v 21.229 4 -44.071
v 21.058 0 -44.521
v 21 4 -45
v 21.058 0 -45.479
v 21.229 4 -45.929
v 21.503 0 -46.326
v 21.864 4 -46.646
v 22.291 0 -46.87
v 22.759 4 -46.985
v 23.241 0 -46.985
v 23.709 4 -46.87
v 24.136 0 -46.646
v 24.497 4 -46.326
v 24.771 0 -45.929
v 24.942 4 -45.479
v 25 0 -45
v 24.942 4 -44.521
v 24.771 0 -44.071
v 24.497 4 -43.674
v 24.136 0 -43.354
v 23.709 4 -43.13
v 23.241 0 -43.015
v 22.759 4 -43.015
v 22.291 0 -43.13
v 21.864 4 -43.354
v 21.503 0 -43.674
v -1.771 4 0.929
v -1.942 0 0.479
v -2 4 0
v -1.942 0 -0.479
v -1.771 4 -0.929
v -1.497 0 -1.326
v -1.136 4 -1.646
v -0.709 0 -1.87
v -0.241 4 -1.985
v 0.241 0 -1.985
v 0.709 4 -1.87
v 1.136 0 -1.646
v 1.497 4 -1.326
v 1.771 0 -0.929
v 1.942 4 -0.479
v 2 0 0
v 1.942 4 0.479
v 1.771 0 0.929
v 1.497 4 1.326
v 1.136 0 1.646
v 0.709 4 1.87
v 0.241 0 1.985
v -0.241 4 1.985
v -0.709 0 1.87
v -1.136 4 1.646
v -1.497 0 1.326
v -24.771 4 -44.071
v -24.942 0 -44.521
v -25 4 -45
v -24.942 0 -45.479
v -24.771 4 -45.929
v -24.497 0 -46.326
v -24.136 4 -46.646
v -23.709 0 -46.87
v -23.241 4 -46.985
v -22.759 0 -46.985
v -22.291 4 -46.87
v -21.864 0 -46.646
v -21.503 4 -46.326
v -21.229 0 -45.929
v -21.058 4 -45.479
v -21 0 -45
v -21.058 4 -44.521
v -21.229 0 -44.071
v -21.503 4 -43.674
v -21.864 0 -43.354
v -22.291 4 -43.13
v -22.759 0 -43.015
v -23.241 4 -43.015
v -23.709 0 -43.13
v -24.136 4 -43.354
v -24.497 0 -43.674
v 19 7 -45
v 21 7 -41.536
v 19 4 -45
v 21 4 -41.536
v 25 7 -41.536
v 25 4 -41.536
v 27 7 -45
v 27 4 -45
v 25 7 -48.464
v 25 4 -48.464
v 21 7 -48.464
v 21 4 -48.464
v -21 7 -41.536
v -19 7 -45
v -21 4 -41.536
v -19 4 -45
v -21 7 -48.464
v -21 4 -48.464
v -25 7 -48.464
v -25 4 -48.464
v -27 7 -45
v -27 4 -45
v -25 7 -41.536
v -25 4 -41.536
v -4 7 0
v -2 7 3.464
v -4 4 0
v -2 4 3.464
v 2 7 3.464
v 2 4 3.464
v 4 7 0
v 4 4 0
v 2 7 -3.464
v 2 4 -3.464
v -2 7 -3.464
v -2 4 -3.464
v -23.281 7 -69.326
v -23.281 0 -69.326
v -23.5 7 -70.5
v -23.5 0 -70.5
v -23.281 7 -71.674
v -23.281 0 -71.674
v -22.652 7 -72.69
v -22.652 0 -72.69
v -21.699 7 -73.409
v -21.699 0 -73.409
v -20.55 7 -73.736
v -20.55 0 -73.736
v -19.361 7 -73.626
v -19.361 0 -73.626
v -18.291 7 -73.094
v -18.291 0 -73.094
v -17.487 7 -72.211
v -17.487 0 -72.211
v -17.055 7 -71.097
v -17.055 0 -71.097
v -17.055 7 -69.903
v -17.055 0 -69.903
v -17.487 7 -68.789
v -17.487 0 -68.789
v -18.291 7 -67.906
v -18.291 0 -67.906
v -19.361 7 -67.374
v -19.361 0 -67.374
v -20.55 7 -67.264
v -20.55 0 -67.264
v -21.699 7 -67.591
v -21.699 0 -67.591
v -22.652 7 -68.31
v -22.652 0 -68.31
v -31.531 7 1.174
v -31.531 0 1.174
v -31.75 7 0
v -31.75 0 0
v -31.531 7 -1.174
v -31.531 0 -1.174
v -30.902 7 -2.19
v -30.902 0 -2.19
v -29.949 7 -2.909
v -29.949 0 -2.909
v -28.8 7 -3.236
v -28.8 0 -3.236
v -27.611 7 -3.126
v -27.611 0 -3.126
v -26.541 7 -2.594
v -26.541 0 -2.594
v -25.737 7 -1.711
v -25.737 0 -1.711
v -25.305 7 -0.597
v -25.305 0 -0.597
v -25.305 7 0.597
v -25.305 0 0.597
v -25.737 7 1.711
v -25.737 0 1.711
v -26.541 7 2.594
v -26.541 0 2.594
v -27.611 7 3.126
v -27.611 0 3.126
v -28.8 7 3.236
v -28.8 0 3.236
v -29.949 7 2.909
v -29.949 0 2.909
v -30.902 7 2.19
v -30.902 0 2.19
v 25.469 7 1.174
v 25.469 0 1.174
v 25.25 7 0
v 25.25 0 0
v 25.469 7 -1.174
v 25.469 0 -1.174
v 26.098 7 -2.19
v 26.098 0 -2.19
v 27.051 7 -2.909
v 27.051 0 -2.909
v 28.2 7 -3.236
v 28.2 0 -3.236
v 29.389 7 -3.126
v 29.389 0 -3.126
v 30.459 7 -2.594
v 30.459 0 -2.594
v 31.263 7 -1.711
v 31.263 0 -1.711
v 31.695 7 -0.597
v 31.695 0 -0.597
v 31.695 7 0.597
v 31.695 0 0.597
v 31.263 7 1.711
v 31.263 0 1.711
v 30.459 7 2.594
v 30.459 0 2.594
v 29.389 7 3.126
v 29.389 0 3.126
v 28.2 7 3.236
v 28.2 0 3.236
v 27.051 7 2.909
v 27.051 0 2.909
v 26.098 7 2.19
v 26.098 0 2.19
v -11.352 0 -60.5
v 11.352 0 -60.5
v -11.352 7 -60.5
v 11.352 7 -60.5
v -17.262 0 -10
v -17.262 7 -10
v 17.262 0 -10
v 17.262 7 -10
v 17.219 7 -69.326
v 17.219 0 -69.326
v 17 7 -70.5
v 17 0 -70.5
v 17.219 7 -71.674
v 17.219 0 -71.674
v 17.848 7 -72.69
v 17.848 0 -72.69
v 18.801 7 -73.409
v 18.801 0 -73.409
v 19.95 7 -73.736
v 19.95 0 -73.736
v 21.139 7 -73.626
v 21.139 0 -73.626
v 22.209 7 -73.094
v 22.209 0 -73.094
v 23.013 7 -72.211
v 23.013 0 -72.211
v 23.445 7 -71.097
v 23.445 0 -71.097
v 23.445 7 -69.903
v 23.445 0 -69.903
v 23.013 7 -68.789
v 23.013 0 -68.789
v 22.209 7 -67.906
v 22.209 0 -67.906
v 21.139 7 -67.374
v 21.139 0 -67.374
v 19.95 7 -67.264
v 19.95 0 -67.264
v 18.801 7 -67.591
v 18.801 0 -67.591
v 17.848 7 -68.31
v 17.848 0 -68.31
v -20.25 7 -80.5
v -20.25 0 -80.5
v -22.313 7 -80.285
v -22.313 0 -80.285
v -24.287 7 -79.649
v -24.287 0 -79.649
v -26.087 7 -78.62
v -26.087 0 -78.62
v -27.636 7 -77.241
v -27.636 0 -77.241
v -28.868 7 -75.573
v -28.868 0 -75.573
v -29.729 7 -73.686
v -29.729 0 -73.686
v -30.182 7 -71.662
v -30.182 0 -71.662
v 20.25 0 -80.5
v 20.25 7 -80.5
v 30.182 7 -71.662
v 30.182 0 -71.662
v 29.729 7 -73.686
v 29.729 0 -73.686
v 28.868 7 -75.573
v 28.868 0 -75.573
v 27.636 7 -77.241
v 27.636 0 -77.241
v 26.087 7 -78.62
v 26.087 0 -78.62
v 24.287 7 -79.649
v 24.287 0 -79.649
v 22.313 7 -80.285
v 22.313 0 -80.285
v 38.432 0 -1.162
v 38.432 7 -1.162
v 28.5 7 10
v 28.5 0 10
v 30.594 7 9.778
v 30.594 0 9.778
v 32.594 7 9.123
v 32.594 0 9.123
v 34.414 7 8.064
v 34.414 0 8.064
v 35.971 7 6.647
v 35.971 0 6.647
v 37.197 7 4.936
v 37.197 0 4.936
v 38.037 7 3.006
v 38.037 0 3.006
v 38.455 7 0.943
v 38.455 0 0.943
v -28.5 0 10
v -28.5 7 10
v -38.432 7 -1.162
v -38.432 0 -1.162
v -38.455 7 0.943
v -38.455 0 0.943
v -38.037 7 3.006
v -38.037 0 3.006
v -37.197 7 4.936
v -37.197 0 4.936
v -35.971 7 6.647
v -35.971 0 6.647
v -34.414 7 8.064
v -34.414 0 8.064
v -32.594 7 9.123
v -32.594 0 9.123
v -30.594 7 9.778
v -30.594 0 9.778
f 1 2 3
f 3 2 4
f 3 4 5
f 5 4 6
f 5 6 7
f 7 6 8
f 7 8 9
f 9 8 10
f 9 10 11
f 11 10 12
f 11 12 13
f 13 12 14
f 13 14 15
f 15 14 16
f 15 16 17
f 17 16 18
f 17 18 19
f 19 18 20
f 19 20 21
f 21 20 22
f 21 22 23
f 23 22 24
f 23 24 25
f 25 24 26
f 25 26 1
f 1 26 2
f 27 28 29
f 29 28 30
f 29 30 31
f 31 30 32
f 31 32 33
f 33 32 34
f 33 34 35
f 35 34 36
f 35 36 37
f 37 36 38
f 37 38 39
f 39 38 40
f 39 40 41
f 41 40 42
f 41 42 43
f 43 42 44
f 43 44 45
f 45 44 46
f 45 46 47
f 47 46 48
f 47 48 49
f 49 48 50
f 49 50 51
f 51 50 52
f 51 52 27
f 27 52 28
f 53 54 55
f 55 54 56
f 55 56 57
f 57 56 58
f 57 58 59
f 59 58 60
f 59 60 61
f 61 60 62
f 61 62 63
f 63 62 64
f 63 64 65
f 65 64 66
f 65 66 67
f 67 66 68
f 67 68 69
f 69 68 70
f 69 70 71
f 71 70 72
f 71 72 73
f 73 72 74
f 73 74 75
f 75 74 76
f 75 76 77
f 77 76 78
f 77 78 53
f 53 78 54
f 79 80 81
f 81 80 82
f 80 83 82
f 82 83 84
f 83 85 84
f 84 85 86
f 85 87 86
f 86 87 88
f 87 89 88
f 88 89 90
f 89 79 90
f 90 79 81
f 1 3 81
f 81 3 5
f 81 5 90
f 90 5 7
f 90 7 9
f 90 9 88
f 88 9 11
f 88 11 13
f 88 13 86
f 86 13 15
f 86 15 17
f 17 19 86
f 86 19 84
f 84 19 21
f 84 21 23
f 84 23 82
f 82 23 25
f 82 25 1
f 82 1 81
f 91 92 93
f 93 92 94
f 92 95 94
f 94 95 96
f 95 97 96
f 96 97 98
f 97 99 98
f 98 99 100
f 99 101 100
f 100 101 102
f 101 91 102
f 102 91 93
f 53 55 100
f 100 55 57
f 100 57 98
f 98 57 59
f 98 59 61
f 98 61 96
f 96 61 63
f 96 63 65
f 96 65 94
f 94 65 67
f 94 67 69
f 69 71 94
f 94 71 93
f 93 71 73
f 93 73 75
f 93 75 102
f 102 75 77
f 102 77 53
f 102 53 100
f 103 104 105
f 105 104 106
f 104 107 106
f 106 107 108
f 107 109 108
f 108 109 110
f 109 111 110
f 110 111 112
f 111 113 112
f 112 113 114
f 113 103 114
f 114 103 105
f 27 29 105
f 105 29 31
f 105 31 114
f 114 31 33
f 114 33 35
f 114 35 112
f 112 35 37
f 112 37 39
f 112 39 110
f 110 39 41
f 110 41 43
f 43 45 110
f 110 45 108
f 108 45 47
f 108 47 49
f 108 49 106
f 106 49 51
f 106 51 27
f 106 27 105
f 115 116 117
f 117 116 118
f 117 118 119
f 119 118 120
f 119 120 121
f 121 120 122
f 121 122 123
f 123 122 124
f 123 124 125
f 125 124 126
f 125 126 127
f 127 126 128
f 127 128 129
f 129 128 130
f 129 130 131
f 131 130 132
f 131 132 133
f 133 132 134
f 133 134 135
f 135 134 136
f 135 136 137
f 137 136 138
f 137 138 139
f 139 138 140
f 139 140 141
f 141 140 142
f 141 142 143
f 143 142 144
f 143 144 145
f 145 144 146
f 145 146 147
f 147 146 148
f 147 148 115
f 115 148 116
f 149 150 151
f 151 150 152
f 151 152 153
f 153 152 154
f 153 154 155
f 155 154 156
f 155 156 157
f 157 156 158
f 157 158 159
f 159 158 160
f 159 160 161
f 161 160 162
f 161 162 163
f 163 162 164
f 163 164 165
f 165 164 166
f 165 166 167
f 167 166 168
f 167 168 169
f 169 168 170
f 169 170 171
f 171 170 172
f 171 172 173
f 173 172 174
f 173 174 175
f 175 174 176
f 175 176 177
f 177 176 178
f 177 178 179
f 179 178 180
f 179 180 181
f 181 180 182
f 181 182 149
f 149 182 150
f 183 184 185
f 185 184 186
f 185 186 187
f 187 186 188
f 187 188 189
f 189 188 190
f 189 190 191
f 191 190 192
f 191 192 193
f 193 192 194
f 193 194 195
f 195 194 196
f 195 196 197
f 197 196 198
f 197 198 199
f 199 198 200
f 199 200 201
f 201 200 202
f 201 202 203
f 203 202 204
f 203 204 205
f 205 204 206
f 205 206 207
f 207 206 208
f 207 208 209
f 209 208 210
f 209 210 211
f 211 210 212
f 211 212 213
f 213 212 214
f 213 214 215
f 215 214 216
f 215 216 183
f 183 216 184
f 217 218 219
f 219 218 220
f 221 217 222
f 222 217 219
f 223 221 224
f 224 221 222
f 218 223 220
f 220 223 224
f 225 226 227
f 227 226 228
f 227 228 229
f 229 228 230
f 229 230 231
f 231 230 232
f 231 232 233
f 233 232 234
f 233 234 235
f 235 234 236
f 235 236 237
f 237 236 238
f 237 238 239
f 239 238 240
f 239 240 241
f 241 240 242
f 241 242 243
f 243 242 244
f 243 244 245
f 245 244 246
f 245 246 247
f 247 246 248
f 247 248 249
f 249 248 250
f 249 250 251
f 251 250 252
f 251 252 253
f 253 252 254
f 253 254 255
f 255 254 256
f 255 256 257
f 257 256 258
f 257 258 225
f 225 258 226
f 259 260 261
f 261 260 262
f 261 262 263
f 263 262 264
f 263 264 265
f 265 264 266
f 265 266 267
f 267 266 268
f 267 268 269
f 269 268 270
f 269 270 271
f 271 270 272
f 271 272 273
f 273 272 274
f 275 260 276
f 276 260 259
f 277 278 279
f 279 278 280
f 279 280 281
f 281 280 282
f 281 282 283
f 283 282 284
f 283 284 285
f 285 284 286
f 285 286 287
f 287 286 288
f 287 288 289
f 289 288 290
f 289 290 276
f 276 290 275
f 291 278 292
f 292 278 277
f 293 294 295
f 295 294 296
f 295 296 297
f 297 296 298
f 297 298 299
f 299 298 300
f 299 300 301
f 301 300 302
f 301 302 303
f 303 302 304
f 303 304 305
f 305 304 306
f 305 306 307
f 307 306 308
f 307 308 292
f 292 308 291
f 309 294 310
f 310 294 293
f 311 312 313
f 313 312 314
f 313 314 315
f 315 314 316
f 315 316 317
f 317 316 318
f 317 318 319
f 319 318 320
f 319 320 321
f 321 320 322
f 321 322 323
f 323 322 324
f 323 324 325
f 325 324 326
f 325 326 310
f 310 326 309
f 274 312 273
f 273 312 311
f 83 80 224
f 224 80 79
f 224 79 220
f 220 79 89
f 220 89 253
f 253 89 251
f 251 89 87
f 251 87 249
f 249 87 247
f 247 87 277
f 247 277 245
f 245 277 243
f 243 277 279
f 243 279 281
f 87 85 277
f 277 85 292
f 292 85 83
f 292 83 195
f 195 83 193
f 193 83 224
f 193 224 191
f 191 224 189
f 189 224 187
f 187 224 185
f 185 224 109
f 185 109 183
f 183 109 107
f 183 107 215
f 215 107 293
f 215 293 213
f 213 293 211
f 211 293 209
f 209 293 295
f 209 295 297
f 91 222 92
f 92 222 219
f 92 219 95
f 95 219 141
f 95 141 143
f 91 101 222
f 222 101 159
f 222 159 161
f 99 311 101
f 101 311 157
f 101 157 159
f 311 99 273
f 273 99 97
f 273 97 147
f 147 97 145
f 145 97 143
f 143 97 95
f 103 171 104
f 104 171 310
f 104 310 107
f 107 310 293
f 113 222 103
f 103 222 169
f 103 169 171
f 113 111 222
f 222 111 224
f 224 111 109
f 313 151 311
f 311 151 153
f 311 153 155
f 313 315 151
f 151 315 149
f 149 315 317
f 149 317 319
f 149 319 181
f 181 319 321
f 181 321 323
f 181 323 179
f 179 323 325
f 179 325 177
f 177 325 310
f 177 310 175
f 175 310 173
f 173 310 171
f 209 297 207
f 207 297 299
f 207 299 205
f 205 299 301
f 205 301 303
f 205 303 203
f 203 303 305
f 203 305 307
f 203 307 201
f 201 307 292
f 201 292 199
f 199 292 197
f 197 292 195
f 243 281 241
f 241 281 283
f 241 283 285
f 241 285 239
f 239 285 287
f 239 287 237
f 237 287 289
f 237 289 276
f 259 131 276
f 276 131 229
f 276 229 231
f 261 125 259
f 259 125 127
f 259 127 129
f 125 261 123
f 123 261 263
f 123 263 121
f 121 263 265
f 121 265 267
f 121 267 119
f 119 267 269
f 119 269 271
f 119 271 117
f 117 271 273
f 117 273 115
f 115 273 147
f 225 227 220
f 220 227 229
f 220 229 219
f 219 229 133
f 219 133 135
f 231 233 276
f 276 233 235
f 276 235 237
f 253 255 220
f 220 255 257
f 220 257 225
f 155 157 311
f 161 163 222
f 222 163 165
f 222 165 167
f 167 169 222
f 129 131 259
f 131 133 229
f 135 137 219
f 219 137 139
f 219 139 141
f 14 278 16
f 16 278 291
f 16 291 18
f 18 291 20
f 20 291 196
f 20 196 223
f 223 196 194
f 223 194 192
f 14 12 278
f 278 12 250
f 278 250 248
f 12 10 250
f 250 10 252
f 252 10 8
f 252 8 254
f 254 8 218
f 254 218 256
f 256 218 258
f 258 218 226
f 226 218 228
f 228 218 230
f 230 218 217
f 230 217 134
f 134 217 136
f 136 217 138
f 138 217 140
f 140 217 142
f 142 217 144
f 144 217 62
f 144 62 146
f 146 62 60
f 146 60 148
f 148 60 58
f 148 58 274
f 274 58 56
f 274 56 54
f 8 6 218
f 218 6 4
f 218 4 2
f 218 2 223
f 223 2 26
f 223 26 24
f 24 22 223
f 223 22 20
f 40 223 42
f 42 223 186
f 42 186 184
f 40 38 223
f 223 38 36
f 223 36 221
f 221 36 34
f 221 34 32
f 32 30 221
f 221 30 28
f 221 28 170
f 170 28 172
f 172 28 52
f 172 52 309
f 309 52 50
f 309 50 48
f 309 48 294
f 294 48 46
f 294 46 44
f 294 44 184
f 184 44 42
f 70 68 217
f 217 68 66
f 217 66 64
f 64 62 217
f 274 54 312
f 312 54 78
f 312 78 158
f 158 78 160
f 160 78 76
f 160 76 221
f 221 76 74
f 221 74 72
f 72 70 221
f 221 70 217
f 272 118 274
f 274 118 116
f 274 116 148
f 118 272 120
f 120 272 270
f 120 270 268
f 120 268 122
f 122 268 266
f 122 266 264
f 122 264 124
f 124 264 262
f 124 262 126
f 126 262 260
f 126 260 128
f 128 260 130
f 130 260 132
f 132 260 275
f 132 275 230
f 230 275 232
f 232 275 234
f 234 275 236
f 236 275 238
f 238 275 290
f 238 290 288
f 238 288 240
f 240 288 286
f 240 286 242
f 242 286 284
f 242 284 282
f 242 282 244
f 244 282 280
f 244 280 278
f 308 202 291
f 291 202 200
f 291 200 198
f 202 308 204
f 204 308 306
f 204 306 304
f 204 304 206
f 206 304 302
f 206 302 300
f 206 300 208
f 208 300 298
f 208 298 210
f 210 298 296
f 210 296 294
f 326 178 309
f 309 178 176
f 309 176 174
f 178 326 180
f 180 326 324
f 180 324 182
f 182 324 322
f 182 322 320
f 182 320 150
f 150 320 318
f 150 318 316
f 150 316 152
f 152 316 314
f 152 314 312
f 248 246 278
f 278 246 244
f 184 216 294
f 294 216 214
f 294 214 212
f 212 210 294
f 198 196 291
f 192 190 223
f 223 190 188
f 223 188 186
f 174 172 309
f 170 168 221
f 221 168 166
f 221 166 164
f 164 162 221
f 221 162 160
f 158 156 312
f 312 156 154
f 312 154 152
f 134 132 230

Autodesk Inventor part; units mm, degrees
ref_plane "YZ Plane" through (0, 0, 0) normal (1, 0, 0) x (0, 1, 0)
ref_plane "XZ Plane" through (0, 0, 0) normal (0, 1, 0) x (-1, 0, 0)
ref_plane "XY Plane" through (0, 0, 0) normal (0, 0, 1) x (1, 0, 0)
sketch "스케치1" plane through (0, 0, 0) normal (0, 1, 0) x (-1, 0, 0)
  line L0 (28.5, 0) -> (-28.5, 0)
  line L1 (-26.25, 0) -> (-30.75, 0)
  circle A0 centre (-28.5, 0) radius 10
  line L2 (0, -98.6) -> (0, 28.1) projected
  line L3 (53.9, 0) -> (-53.9, 0) projected
  circle A1 centre (28.5, 0) radius 10
  line L4 (20.25, -70.5) -> (-20.25, -70.5)
  circle A2 centre (-20.25, -70.5) radius 10
  circle A3 centre (-20.25, -70.5) radius 3.25
  circle A4 centre (20.25, -70.5) radius 10
  line L5 (30.1822, -71.6623) -> (38.4322, -1.1623)
  line L6 (20.25, -80.5) -> (-20.25, -80.5)
  line L7 (28.5, 10) -> (-28.5, 10)
  line L8 (-30.1822, -71.6623) -> (-38.4322, -1.1623)
  line L9 (10.3178, -69.3377) -> (18.5678, 1.1623)
  line L10 (20.25, -60.5) -> (-20.25, -60.5)
  line L11 (-10.3178, -69.3377) -> (-18.5612, 1.1063)
  line L12 (27.5, -10) -> (-28.5, -10)
  circle A5 centre (-28.5, 0) radius 3.25
  circle A6 centre (20.25, -70.5) radius 3.25
  circle A7 centre (28.5, 0) radius 3.25
  point P0 (0, 0)
  point P1 (0, 0)
  point P2 (0, -70.5)
  point P3 (-17, -70.5)
  point P4 (-23.5, -70.5)
  point P5 (18.5, 0)
  point P6 (18.4318, 0)
  point P7 (-18.0599, 1.0927)
  point P8 (-18.4318, 0)
  point P9 (-18.5, 0)
  point P10 (-11.352, -60.5)
  point P11 (-17.2616, -10)
  point P12 (17.2616, -10)
  point P13 (11.352, -60.5)
  dimension "d0" = 57
  dimension "d7" = 20
  dimension "d10" = 40.5
  dimension "d11" = 70.5
  dimension "d12" = 20
  dimension "d13" = 6.5
  dimension "d17" = 6.5
  dimension "d18" = 6.5
  dimension "d19" = 6.5
extrude "돌출1" add sketch "스케치1" along normal blind 7 contours A0 L3 A5 L0 | A0 L11 L0 | L0 A5 L3 A0 | L0 L11 L12 A0 | L11 A0 L7 L2 L0 | L0 L2 L12 L11 | L12 L11 L10 A2 L8 A0 | L2 L7 A1 L9 L0 | L0 L9 L12 L2 | L9 A1 L0 | L0 A1 L5 A4 L10 L9 | L11 A2 L10 | L10 L2 L4 A2 L11 | A2 | A1 L3 A7 L0 | L0 A7 L3 A1 | L10 L9 A4 L4 L2 | A2 L4 L2 L6 | L10 A4 L9 | L4 A4 L6 L2 | A4
sketch "스케치2" plane through (0, 7, 0) normal (0, 1, 0) x (1, 0, 0)
  point P0 (0, 0)
sketch "스케치3" plane through (0, 7, 0) normal (0, 1, 0) x (1, 0, 0)
  circle A0 centre (0, 0) radius 4
  line L0 (-30.1822, 71.6623) -> (-38.4322, 1.1623) projected
  arc A1 (-38.4322, 1.1623) -> (-28.5, -10) centre (-28.5, 0) ccw projected
  line L1 (-28.5, -10) -> (28.5, -10) projected
  arc A2 (28.5, -10) -> (38.4322, 1.1623) centre (28.5, 0) ccw projected
  line L2 (38.4322, 1.1623) -> (30.1822, 71.6623) projected
  arc A3 (30.1822, 71.6623) -> (20.25, 80.5) centre (20.25, 70.5) ccw projected
  line L3 (20.25, 80.5) -> (-20.25, 80.5) projected
  arc A4 (-20.25, 80.5) -> (-30.1822, 71.6623) centre (-20.25, 70.5) ccw projected
  circle A5 centre (20.25, 70.5) radius 3.25 projected
  line L4 (11.352, 60.5) -> (17.2616, 10) projected
  line L5 (17.2616, 10) -> (-17.2616, 10) projected
  line L6 (-17.2616, 10) -> (-11.352, 60.5) projected
  line L7 (-11.352, 60.5) -> (11.352, 60.5) projected
  circle A6 centre (28.5, 0) radius 3.25 projected
  circle A7 centre (-28.5, 0) radius 3.25 projected
  circle A8 centre (-20.25, 70.5) radius 3.25 projected
  line L8 (0, 0) -> (0, 45)
  line L9 (-23, 45) -> (23, 45)
  circle A9 centre (-23, 45) radius 4
  circle A10 centre (23, 45) radius 4
  line L10 (-2, 3.4641) -> (2, 3.4641)
  line L11 (-2, 3.4641) -> (-4, 0)
  line L12 (57.3115, 0) -> (-57.3115, 0) projected
  line L13 (-4, 0) -> (-2, -3.4641)
  line L14 (-2, -3.4641) -> (2, -3.4641)
  line L15 (4, 0) -> (2, -3.4641)
  line L16 (4, 0) -> (2, 3.4641)
  line L17 (-25, 48.4641) -> (-21, 48.4641)
  line L18 (-25, 48.4641) -> (-27, 45)
  line L19 (-21, 48.4641) -> (-19, 45)
  line L20 (-19, 45) -> (-21, 41.5359)
  line L21 (-25, 41.5359) -> (-21, 41.5359)
  line L22 (-25, 41.5359) -> (-27, 45)
  line L23 (25, 48.4641) -> (21, 48.4641)
  line L24 (25, 48.4641) -> (27, 45)
  line L25 (21, 48.4641) -> (19, 45)
  line L26 (19, 45) -> (21, 41.5359)
  line L27 (25, 41.5359) -> (21, 41.5359)
  line L28 (25, 41.5359) -> (27, 45)
  circle A11 centre (-23, 45) radius 2
  circle A12 centre (23, 45) radius 2
  circle A13 centre (0, 0) radius 2
  dimension "d20" = 8
  dimension "d21" = 45
  dimension "d22" = 46
  dimension "d23" = 8
  dimension "d24" = 8
  dimension "d25" = 4
  dimension "d26" = 4
  dimension "d27" = 4
  dimension "d28" = 4
  dimension "d31" = 4
  dimension "d32" = 4
  dimension "d33" = 4
extrude "돌출2" cut sketch "스케치3" against normal blind 3 contours L15 L14 L13 L12 A13 | A11 | L20 L21 L22 L18 L17 L19 | A12 | L25 L23 L24 L28 L27 L26 | L12 A13 L8 L10 L16 | A13 L12 | L12 L8 A13 | L8 A13 L12 L11 L10 | L12 A13 L8
extrude "돌출3" cut sketch "스케치3" against normal blind 7 contours A11 | A12 | A13 L12 | L12 L8 A13 | L12 A13 L8
properties part number "라이다"
